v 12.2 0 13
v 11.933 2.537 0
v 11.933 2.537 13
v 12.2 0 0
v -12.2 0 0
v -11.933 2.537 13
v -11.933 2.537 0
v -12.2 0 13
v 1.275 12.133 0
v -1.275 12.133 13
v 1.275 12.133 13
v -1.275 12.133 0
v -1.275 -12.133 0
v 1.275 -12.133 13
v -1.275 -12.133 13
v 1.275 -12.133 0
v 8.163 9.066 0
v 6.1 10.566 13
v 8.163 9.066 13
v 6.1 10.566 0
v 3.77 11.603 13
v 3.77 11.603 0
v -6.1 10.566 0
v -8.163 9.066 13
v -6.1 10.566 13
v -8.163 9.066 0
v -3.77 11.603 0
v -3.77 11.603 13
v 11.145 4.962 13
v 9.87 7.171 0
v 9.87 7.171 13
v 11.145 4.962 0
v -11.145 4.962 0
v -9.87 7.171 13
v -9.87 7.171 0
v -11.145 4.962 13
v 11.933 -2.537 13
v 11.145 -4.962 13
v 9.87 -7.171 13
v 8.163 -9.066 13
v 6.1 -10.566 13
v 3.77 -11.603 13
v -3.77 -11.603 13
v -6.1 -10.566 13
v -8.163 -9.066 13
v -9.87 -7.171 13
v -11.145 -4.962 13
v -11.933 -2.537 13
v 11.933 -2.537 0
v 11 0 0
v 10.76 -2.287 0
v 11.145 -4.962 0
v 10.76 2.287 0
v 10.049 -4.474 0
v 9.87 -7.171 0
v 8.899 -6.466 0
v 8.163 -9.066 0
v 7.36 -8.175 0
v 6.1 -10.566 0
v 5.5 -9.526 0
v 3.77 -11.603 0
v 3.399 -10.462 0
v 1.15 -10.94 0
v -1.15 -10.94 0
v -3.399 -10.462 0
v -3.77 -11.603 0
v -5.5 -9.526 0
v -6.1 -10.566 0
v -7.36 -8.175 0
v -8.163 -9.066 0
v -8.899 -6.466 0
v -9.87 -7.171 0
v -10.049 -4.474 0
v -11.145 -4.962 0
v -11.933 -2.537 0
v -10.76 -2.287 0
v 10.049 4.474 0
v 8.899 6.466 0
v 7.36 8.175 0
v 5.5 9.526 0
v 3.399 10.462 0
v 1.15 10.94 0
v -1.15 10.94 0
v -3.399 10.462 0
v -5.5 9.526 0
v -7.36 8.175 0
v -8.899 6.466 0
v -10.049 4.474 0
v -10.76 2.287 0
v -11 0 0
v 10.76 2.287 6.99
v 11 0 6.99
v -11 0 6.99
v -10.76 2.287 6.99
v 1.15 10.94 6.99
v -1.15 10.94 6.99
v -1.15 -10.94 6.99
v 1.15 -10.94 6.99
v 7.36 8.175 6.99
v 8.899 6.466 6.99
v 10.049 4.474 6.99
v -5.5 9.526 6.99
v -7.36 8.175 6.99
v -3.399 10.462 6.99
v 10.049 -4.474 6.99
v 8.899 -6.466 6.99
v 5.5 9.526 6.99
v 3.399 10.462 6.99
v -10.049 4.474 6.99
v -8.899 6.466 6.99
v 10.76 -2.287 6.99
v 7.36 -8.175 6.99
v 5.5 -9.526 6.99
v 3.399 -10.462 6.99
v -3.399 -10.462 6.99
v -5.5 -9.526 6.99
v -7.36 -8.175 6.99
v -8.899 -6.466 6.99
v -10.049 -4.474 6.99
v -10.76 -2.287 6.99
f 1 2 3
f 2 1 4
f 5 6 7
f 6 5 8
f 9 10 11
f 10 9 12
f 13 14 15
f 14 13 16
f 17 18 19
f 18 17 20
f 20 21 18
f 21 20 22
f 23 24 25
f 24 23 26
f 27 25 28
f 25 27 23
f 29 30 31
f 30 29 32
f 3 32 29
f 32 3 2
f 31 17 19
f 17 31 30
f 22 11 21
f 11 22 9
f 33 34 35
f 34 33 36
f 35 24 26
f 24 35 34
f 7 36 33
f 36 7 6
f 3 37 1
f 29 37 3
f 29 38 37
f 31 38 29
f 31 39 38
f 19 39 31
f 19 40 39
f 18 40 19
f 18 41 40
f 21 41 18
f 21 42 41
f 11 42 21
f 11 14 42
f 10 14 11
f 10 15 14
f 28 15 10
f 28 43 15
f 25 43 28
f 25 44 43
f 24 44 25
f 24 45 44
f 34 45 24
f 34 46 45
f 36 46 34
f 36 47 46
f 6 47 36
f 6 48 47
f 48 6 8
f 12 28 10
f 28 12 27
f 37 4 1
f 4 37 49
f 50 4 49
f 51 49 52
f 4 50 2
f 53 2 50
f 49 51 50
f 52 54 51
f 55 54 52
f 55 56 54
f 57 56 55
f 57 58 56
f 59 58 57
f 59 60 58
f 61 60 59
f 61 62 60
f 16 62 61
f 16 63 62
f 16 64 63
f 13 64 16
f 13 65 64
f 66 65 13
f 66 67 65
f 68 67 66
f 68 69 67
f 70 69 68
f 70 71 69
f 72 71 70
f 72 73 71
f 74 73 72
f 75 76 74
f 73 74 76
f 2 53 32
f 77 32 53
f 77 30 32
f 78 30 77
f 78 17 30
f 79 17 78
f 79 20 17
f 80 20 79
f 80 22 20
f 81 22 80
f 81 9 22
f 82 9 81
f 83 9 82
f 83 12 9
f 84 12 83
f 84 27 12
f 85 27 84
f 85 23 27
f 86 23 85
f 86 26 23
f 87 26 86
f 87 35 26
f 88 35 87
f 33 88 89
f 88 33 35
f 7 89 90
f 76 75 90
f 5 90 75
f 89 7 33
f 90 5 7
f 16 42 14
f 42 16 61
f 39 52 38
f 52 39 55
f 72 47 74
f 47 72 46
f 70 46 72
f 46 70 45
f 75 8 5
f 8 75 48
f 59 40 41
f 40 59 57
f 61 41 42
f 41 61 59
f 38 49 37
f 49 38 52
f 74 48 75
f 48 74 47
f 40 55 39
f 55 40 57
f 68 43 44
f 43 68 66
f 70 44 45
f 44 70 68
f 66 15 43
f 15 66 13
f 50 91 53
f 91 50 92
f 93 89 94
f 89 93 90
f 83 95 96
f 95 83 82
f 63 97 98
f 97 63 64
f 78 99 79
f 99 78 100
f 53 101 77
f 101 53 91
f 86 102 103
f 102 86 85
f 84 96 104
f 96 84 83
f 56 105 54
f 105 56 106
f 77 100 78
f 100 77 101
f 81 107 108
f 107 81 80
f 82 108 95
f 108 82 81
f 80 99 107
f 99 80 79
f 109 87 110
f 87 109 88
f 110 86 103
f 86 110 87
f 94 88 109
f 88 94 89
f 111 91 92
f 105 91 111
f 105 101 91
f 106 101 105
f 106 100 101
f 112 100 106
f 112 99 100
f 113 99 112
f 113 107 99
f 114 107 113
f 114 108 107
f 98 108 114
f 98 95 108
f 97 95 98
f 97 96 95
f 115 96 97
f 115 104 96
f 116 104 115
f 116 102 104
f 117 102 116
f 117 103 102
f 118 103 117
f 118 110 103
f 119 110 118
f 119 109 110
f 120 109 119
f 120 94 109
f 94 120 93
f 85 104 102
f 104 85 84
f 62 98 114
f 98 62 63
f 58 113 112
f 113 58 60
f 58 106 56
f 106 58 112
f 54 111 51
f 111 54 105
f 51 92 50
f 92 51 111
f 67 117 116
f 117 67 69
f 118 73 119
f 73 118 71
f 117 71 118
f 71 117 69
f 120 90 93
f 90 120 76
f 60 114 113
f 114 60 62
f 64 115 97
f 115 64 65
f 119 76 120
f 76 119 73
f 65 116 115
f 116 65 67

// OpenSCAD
$fn=30;
difference(){
cylinder(r=12.2, 13);
translate([0,0,-.01])
cylinder(r=11, 7);
}
